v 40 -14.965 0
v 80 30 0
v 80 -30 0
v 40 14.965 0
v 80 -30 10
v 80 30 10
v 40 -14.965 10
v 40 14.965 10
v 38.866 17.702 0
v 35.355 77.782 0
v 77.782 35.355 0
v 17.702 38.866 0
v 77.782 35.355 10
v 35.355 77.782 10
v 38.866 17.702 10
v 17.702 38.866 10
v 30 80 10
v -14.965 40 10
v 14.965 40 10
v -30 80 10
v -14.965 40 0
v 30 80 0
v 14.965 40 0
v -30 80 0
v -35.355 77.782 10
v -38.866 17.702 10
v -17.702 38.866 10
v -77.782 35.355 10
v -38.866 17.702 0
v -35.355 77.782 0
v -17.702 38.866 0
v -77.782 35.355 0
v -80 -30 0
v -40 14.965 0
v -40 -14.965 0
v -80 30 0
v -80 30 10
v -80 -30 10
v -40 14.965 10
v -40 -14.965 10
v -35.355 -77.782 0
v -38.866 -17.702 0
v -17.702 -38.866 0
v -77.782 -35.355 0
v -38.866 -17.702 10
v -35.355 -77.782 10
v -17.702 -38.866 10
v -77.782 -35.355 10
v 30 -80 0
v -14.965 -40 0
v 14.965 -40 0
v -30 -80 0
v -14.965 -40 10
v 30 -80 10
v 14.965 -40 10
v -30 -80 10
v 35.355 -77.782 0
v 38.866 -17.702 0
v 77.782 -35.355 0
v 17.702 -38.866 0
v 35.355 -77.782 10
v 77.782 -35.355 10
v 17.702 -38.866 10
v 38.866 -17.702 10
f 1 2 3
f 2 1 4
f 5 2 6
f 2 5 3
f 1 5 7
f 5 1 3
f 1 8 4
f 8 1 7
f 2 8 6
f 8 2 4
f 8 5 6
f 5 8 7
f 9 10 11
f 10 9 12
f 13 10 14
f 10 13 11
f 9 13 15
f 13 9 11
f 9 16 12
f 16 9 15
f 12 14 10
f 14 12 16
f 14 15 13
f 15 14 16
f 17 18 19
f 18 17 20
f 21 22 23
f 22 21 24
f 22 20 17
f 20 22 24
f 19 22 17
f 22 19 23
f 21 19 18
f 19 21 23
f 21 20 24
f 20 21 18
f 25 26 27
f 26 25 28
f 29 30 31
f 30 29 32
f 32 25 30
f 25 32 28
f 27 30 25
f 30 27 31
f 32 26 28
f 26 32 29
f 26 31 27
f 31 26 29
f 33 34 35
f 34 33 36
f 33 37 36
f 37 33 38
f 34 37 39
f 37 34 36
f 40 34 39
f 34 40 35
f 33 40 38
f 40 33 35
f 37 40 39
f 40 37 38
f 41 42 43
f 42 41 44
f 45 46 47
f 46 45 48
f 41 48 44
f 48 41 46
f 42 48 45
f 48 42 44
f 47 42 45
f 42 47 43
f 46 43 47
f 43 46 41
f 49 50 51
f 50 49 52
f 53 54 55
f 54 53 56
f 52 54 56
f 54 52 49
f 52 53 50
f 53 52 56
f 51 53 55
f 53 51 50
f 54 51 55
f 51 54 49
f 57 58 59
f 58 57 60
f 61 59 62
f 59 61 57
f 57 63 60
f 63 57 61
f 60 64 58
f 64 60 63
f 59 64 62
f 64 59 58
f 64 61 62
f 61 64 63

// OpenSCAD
module toothPart() {
    offsetLength = 40 * tan(20.6);
    // echo("length:", offsetLength);
    translate([40,0,0])
    linear_extrude(10)
        polygon([[0,30-offsetLength],[40,30],[40,-30],[0,-(30-offsetLength)]]);
}

rotateAngle = 20.6*2 + (360 - 8 * 20.6*2) / 8;
for (i=[0 : rotateAngle : (360-rotateAngle)]) {
    rotate([0,0,i])
        toothPart();
}
